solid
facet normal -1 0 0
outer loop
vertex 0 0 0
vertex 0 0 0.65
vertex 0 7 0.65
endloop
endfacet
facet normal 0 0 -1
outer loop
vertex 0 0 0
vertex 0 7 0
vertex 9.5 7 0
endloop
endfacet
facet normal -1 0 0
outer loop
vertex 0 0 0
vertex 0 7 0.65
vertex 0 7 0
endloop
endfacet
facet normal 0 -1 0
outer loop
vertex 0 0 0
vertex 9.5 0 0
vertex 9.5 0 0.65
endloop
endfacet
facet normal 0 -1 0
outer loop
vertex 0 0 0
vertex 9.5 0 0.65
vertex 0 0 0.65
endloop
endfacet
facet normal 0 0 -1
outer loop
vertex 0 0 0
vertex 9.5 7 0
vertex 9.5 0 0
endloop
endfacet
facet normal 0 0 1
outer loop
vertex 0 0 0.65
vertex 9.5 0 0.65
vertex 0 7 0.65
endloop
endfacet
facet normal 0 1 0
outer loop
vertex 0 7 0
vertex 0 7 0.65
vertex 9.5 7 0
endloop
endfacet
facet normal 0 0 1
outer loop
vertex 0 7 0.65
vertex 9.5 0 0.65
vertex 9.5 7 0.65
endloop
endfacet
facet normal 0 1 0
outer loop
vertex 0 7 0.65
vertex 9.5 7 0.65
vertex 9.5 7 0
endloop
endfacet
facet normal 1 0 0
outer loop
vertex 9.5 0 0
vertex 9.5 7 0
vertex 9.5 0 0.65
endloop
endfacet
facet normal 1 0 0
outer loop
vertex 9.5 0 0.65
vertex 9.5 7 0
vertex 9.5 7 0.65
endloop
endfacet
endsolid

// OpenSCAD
/* Warning, this is a very basic generator with a lot of approximation 
input data : [UFBGA, C5B, 9.5x7x0.65mm, 117, , A, C04-21166A]
generated by com.zoubworld.electronics.cad.model3d.Basic
Date : Sun Feb 15 10:50:49 CET 2026
*/

//body
color("black")
translate([0,0,0])
cube([9.5,7.0,0.65], center=false);
